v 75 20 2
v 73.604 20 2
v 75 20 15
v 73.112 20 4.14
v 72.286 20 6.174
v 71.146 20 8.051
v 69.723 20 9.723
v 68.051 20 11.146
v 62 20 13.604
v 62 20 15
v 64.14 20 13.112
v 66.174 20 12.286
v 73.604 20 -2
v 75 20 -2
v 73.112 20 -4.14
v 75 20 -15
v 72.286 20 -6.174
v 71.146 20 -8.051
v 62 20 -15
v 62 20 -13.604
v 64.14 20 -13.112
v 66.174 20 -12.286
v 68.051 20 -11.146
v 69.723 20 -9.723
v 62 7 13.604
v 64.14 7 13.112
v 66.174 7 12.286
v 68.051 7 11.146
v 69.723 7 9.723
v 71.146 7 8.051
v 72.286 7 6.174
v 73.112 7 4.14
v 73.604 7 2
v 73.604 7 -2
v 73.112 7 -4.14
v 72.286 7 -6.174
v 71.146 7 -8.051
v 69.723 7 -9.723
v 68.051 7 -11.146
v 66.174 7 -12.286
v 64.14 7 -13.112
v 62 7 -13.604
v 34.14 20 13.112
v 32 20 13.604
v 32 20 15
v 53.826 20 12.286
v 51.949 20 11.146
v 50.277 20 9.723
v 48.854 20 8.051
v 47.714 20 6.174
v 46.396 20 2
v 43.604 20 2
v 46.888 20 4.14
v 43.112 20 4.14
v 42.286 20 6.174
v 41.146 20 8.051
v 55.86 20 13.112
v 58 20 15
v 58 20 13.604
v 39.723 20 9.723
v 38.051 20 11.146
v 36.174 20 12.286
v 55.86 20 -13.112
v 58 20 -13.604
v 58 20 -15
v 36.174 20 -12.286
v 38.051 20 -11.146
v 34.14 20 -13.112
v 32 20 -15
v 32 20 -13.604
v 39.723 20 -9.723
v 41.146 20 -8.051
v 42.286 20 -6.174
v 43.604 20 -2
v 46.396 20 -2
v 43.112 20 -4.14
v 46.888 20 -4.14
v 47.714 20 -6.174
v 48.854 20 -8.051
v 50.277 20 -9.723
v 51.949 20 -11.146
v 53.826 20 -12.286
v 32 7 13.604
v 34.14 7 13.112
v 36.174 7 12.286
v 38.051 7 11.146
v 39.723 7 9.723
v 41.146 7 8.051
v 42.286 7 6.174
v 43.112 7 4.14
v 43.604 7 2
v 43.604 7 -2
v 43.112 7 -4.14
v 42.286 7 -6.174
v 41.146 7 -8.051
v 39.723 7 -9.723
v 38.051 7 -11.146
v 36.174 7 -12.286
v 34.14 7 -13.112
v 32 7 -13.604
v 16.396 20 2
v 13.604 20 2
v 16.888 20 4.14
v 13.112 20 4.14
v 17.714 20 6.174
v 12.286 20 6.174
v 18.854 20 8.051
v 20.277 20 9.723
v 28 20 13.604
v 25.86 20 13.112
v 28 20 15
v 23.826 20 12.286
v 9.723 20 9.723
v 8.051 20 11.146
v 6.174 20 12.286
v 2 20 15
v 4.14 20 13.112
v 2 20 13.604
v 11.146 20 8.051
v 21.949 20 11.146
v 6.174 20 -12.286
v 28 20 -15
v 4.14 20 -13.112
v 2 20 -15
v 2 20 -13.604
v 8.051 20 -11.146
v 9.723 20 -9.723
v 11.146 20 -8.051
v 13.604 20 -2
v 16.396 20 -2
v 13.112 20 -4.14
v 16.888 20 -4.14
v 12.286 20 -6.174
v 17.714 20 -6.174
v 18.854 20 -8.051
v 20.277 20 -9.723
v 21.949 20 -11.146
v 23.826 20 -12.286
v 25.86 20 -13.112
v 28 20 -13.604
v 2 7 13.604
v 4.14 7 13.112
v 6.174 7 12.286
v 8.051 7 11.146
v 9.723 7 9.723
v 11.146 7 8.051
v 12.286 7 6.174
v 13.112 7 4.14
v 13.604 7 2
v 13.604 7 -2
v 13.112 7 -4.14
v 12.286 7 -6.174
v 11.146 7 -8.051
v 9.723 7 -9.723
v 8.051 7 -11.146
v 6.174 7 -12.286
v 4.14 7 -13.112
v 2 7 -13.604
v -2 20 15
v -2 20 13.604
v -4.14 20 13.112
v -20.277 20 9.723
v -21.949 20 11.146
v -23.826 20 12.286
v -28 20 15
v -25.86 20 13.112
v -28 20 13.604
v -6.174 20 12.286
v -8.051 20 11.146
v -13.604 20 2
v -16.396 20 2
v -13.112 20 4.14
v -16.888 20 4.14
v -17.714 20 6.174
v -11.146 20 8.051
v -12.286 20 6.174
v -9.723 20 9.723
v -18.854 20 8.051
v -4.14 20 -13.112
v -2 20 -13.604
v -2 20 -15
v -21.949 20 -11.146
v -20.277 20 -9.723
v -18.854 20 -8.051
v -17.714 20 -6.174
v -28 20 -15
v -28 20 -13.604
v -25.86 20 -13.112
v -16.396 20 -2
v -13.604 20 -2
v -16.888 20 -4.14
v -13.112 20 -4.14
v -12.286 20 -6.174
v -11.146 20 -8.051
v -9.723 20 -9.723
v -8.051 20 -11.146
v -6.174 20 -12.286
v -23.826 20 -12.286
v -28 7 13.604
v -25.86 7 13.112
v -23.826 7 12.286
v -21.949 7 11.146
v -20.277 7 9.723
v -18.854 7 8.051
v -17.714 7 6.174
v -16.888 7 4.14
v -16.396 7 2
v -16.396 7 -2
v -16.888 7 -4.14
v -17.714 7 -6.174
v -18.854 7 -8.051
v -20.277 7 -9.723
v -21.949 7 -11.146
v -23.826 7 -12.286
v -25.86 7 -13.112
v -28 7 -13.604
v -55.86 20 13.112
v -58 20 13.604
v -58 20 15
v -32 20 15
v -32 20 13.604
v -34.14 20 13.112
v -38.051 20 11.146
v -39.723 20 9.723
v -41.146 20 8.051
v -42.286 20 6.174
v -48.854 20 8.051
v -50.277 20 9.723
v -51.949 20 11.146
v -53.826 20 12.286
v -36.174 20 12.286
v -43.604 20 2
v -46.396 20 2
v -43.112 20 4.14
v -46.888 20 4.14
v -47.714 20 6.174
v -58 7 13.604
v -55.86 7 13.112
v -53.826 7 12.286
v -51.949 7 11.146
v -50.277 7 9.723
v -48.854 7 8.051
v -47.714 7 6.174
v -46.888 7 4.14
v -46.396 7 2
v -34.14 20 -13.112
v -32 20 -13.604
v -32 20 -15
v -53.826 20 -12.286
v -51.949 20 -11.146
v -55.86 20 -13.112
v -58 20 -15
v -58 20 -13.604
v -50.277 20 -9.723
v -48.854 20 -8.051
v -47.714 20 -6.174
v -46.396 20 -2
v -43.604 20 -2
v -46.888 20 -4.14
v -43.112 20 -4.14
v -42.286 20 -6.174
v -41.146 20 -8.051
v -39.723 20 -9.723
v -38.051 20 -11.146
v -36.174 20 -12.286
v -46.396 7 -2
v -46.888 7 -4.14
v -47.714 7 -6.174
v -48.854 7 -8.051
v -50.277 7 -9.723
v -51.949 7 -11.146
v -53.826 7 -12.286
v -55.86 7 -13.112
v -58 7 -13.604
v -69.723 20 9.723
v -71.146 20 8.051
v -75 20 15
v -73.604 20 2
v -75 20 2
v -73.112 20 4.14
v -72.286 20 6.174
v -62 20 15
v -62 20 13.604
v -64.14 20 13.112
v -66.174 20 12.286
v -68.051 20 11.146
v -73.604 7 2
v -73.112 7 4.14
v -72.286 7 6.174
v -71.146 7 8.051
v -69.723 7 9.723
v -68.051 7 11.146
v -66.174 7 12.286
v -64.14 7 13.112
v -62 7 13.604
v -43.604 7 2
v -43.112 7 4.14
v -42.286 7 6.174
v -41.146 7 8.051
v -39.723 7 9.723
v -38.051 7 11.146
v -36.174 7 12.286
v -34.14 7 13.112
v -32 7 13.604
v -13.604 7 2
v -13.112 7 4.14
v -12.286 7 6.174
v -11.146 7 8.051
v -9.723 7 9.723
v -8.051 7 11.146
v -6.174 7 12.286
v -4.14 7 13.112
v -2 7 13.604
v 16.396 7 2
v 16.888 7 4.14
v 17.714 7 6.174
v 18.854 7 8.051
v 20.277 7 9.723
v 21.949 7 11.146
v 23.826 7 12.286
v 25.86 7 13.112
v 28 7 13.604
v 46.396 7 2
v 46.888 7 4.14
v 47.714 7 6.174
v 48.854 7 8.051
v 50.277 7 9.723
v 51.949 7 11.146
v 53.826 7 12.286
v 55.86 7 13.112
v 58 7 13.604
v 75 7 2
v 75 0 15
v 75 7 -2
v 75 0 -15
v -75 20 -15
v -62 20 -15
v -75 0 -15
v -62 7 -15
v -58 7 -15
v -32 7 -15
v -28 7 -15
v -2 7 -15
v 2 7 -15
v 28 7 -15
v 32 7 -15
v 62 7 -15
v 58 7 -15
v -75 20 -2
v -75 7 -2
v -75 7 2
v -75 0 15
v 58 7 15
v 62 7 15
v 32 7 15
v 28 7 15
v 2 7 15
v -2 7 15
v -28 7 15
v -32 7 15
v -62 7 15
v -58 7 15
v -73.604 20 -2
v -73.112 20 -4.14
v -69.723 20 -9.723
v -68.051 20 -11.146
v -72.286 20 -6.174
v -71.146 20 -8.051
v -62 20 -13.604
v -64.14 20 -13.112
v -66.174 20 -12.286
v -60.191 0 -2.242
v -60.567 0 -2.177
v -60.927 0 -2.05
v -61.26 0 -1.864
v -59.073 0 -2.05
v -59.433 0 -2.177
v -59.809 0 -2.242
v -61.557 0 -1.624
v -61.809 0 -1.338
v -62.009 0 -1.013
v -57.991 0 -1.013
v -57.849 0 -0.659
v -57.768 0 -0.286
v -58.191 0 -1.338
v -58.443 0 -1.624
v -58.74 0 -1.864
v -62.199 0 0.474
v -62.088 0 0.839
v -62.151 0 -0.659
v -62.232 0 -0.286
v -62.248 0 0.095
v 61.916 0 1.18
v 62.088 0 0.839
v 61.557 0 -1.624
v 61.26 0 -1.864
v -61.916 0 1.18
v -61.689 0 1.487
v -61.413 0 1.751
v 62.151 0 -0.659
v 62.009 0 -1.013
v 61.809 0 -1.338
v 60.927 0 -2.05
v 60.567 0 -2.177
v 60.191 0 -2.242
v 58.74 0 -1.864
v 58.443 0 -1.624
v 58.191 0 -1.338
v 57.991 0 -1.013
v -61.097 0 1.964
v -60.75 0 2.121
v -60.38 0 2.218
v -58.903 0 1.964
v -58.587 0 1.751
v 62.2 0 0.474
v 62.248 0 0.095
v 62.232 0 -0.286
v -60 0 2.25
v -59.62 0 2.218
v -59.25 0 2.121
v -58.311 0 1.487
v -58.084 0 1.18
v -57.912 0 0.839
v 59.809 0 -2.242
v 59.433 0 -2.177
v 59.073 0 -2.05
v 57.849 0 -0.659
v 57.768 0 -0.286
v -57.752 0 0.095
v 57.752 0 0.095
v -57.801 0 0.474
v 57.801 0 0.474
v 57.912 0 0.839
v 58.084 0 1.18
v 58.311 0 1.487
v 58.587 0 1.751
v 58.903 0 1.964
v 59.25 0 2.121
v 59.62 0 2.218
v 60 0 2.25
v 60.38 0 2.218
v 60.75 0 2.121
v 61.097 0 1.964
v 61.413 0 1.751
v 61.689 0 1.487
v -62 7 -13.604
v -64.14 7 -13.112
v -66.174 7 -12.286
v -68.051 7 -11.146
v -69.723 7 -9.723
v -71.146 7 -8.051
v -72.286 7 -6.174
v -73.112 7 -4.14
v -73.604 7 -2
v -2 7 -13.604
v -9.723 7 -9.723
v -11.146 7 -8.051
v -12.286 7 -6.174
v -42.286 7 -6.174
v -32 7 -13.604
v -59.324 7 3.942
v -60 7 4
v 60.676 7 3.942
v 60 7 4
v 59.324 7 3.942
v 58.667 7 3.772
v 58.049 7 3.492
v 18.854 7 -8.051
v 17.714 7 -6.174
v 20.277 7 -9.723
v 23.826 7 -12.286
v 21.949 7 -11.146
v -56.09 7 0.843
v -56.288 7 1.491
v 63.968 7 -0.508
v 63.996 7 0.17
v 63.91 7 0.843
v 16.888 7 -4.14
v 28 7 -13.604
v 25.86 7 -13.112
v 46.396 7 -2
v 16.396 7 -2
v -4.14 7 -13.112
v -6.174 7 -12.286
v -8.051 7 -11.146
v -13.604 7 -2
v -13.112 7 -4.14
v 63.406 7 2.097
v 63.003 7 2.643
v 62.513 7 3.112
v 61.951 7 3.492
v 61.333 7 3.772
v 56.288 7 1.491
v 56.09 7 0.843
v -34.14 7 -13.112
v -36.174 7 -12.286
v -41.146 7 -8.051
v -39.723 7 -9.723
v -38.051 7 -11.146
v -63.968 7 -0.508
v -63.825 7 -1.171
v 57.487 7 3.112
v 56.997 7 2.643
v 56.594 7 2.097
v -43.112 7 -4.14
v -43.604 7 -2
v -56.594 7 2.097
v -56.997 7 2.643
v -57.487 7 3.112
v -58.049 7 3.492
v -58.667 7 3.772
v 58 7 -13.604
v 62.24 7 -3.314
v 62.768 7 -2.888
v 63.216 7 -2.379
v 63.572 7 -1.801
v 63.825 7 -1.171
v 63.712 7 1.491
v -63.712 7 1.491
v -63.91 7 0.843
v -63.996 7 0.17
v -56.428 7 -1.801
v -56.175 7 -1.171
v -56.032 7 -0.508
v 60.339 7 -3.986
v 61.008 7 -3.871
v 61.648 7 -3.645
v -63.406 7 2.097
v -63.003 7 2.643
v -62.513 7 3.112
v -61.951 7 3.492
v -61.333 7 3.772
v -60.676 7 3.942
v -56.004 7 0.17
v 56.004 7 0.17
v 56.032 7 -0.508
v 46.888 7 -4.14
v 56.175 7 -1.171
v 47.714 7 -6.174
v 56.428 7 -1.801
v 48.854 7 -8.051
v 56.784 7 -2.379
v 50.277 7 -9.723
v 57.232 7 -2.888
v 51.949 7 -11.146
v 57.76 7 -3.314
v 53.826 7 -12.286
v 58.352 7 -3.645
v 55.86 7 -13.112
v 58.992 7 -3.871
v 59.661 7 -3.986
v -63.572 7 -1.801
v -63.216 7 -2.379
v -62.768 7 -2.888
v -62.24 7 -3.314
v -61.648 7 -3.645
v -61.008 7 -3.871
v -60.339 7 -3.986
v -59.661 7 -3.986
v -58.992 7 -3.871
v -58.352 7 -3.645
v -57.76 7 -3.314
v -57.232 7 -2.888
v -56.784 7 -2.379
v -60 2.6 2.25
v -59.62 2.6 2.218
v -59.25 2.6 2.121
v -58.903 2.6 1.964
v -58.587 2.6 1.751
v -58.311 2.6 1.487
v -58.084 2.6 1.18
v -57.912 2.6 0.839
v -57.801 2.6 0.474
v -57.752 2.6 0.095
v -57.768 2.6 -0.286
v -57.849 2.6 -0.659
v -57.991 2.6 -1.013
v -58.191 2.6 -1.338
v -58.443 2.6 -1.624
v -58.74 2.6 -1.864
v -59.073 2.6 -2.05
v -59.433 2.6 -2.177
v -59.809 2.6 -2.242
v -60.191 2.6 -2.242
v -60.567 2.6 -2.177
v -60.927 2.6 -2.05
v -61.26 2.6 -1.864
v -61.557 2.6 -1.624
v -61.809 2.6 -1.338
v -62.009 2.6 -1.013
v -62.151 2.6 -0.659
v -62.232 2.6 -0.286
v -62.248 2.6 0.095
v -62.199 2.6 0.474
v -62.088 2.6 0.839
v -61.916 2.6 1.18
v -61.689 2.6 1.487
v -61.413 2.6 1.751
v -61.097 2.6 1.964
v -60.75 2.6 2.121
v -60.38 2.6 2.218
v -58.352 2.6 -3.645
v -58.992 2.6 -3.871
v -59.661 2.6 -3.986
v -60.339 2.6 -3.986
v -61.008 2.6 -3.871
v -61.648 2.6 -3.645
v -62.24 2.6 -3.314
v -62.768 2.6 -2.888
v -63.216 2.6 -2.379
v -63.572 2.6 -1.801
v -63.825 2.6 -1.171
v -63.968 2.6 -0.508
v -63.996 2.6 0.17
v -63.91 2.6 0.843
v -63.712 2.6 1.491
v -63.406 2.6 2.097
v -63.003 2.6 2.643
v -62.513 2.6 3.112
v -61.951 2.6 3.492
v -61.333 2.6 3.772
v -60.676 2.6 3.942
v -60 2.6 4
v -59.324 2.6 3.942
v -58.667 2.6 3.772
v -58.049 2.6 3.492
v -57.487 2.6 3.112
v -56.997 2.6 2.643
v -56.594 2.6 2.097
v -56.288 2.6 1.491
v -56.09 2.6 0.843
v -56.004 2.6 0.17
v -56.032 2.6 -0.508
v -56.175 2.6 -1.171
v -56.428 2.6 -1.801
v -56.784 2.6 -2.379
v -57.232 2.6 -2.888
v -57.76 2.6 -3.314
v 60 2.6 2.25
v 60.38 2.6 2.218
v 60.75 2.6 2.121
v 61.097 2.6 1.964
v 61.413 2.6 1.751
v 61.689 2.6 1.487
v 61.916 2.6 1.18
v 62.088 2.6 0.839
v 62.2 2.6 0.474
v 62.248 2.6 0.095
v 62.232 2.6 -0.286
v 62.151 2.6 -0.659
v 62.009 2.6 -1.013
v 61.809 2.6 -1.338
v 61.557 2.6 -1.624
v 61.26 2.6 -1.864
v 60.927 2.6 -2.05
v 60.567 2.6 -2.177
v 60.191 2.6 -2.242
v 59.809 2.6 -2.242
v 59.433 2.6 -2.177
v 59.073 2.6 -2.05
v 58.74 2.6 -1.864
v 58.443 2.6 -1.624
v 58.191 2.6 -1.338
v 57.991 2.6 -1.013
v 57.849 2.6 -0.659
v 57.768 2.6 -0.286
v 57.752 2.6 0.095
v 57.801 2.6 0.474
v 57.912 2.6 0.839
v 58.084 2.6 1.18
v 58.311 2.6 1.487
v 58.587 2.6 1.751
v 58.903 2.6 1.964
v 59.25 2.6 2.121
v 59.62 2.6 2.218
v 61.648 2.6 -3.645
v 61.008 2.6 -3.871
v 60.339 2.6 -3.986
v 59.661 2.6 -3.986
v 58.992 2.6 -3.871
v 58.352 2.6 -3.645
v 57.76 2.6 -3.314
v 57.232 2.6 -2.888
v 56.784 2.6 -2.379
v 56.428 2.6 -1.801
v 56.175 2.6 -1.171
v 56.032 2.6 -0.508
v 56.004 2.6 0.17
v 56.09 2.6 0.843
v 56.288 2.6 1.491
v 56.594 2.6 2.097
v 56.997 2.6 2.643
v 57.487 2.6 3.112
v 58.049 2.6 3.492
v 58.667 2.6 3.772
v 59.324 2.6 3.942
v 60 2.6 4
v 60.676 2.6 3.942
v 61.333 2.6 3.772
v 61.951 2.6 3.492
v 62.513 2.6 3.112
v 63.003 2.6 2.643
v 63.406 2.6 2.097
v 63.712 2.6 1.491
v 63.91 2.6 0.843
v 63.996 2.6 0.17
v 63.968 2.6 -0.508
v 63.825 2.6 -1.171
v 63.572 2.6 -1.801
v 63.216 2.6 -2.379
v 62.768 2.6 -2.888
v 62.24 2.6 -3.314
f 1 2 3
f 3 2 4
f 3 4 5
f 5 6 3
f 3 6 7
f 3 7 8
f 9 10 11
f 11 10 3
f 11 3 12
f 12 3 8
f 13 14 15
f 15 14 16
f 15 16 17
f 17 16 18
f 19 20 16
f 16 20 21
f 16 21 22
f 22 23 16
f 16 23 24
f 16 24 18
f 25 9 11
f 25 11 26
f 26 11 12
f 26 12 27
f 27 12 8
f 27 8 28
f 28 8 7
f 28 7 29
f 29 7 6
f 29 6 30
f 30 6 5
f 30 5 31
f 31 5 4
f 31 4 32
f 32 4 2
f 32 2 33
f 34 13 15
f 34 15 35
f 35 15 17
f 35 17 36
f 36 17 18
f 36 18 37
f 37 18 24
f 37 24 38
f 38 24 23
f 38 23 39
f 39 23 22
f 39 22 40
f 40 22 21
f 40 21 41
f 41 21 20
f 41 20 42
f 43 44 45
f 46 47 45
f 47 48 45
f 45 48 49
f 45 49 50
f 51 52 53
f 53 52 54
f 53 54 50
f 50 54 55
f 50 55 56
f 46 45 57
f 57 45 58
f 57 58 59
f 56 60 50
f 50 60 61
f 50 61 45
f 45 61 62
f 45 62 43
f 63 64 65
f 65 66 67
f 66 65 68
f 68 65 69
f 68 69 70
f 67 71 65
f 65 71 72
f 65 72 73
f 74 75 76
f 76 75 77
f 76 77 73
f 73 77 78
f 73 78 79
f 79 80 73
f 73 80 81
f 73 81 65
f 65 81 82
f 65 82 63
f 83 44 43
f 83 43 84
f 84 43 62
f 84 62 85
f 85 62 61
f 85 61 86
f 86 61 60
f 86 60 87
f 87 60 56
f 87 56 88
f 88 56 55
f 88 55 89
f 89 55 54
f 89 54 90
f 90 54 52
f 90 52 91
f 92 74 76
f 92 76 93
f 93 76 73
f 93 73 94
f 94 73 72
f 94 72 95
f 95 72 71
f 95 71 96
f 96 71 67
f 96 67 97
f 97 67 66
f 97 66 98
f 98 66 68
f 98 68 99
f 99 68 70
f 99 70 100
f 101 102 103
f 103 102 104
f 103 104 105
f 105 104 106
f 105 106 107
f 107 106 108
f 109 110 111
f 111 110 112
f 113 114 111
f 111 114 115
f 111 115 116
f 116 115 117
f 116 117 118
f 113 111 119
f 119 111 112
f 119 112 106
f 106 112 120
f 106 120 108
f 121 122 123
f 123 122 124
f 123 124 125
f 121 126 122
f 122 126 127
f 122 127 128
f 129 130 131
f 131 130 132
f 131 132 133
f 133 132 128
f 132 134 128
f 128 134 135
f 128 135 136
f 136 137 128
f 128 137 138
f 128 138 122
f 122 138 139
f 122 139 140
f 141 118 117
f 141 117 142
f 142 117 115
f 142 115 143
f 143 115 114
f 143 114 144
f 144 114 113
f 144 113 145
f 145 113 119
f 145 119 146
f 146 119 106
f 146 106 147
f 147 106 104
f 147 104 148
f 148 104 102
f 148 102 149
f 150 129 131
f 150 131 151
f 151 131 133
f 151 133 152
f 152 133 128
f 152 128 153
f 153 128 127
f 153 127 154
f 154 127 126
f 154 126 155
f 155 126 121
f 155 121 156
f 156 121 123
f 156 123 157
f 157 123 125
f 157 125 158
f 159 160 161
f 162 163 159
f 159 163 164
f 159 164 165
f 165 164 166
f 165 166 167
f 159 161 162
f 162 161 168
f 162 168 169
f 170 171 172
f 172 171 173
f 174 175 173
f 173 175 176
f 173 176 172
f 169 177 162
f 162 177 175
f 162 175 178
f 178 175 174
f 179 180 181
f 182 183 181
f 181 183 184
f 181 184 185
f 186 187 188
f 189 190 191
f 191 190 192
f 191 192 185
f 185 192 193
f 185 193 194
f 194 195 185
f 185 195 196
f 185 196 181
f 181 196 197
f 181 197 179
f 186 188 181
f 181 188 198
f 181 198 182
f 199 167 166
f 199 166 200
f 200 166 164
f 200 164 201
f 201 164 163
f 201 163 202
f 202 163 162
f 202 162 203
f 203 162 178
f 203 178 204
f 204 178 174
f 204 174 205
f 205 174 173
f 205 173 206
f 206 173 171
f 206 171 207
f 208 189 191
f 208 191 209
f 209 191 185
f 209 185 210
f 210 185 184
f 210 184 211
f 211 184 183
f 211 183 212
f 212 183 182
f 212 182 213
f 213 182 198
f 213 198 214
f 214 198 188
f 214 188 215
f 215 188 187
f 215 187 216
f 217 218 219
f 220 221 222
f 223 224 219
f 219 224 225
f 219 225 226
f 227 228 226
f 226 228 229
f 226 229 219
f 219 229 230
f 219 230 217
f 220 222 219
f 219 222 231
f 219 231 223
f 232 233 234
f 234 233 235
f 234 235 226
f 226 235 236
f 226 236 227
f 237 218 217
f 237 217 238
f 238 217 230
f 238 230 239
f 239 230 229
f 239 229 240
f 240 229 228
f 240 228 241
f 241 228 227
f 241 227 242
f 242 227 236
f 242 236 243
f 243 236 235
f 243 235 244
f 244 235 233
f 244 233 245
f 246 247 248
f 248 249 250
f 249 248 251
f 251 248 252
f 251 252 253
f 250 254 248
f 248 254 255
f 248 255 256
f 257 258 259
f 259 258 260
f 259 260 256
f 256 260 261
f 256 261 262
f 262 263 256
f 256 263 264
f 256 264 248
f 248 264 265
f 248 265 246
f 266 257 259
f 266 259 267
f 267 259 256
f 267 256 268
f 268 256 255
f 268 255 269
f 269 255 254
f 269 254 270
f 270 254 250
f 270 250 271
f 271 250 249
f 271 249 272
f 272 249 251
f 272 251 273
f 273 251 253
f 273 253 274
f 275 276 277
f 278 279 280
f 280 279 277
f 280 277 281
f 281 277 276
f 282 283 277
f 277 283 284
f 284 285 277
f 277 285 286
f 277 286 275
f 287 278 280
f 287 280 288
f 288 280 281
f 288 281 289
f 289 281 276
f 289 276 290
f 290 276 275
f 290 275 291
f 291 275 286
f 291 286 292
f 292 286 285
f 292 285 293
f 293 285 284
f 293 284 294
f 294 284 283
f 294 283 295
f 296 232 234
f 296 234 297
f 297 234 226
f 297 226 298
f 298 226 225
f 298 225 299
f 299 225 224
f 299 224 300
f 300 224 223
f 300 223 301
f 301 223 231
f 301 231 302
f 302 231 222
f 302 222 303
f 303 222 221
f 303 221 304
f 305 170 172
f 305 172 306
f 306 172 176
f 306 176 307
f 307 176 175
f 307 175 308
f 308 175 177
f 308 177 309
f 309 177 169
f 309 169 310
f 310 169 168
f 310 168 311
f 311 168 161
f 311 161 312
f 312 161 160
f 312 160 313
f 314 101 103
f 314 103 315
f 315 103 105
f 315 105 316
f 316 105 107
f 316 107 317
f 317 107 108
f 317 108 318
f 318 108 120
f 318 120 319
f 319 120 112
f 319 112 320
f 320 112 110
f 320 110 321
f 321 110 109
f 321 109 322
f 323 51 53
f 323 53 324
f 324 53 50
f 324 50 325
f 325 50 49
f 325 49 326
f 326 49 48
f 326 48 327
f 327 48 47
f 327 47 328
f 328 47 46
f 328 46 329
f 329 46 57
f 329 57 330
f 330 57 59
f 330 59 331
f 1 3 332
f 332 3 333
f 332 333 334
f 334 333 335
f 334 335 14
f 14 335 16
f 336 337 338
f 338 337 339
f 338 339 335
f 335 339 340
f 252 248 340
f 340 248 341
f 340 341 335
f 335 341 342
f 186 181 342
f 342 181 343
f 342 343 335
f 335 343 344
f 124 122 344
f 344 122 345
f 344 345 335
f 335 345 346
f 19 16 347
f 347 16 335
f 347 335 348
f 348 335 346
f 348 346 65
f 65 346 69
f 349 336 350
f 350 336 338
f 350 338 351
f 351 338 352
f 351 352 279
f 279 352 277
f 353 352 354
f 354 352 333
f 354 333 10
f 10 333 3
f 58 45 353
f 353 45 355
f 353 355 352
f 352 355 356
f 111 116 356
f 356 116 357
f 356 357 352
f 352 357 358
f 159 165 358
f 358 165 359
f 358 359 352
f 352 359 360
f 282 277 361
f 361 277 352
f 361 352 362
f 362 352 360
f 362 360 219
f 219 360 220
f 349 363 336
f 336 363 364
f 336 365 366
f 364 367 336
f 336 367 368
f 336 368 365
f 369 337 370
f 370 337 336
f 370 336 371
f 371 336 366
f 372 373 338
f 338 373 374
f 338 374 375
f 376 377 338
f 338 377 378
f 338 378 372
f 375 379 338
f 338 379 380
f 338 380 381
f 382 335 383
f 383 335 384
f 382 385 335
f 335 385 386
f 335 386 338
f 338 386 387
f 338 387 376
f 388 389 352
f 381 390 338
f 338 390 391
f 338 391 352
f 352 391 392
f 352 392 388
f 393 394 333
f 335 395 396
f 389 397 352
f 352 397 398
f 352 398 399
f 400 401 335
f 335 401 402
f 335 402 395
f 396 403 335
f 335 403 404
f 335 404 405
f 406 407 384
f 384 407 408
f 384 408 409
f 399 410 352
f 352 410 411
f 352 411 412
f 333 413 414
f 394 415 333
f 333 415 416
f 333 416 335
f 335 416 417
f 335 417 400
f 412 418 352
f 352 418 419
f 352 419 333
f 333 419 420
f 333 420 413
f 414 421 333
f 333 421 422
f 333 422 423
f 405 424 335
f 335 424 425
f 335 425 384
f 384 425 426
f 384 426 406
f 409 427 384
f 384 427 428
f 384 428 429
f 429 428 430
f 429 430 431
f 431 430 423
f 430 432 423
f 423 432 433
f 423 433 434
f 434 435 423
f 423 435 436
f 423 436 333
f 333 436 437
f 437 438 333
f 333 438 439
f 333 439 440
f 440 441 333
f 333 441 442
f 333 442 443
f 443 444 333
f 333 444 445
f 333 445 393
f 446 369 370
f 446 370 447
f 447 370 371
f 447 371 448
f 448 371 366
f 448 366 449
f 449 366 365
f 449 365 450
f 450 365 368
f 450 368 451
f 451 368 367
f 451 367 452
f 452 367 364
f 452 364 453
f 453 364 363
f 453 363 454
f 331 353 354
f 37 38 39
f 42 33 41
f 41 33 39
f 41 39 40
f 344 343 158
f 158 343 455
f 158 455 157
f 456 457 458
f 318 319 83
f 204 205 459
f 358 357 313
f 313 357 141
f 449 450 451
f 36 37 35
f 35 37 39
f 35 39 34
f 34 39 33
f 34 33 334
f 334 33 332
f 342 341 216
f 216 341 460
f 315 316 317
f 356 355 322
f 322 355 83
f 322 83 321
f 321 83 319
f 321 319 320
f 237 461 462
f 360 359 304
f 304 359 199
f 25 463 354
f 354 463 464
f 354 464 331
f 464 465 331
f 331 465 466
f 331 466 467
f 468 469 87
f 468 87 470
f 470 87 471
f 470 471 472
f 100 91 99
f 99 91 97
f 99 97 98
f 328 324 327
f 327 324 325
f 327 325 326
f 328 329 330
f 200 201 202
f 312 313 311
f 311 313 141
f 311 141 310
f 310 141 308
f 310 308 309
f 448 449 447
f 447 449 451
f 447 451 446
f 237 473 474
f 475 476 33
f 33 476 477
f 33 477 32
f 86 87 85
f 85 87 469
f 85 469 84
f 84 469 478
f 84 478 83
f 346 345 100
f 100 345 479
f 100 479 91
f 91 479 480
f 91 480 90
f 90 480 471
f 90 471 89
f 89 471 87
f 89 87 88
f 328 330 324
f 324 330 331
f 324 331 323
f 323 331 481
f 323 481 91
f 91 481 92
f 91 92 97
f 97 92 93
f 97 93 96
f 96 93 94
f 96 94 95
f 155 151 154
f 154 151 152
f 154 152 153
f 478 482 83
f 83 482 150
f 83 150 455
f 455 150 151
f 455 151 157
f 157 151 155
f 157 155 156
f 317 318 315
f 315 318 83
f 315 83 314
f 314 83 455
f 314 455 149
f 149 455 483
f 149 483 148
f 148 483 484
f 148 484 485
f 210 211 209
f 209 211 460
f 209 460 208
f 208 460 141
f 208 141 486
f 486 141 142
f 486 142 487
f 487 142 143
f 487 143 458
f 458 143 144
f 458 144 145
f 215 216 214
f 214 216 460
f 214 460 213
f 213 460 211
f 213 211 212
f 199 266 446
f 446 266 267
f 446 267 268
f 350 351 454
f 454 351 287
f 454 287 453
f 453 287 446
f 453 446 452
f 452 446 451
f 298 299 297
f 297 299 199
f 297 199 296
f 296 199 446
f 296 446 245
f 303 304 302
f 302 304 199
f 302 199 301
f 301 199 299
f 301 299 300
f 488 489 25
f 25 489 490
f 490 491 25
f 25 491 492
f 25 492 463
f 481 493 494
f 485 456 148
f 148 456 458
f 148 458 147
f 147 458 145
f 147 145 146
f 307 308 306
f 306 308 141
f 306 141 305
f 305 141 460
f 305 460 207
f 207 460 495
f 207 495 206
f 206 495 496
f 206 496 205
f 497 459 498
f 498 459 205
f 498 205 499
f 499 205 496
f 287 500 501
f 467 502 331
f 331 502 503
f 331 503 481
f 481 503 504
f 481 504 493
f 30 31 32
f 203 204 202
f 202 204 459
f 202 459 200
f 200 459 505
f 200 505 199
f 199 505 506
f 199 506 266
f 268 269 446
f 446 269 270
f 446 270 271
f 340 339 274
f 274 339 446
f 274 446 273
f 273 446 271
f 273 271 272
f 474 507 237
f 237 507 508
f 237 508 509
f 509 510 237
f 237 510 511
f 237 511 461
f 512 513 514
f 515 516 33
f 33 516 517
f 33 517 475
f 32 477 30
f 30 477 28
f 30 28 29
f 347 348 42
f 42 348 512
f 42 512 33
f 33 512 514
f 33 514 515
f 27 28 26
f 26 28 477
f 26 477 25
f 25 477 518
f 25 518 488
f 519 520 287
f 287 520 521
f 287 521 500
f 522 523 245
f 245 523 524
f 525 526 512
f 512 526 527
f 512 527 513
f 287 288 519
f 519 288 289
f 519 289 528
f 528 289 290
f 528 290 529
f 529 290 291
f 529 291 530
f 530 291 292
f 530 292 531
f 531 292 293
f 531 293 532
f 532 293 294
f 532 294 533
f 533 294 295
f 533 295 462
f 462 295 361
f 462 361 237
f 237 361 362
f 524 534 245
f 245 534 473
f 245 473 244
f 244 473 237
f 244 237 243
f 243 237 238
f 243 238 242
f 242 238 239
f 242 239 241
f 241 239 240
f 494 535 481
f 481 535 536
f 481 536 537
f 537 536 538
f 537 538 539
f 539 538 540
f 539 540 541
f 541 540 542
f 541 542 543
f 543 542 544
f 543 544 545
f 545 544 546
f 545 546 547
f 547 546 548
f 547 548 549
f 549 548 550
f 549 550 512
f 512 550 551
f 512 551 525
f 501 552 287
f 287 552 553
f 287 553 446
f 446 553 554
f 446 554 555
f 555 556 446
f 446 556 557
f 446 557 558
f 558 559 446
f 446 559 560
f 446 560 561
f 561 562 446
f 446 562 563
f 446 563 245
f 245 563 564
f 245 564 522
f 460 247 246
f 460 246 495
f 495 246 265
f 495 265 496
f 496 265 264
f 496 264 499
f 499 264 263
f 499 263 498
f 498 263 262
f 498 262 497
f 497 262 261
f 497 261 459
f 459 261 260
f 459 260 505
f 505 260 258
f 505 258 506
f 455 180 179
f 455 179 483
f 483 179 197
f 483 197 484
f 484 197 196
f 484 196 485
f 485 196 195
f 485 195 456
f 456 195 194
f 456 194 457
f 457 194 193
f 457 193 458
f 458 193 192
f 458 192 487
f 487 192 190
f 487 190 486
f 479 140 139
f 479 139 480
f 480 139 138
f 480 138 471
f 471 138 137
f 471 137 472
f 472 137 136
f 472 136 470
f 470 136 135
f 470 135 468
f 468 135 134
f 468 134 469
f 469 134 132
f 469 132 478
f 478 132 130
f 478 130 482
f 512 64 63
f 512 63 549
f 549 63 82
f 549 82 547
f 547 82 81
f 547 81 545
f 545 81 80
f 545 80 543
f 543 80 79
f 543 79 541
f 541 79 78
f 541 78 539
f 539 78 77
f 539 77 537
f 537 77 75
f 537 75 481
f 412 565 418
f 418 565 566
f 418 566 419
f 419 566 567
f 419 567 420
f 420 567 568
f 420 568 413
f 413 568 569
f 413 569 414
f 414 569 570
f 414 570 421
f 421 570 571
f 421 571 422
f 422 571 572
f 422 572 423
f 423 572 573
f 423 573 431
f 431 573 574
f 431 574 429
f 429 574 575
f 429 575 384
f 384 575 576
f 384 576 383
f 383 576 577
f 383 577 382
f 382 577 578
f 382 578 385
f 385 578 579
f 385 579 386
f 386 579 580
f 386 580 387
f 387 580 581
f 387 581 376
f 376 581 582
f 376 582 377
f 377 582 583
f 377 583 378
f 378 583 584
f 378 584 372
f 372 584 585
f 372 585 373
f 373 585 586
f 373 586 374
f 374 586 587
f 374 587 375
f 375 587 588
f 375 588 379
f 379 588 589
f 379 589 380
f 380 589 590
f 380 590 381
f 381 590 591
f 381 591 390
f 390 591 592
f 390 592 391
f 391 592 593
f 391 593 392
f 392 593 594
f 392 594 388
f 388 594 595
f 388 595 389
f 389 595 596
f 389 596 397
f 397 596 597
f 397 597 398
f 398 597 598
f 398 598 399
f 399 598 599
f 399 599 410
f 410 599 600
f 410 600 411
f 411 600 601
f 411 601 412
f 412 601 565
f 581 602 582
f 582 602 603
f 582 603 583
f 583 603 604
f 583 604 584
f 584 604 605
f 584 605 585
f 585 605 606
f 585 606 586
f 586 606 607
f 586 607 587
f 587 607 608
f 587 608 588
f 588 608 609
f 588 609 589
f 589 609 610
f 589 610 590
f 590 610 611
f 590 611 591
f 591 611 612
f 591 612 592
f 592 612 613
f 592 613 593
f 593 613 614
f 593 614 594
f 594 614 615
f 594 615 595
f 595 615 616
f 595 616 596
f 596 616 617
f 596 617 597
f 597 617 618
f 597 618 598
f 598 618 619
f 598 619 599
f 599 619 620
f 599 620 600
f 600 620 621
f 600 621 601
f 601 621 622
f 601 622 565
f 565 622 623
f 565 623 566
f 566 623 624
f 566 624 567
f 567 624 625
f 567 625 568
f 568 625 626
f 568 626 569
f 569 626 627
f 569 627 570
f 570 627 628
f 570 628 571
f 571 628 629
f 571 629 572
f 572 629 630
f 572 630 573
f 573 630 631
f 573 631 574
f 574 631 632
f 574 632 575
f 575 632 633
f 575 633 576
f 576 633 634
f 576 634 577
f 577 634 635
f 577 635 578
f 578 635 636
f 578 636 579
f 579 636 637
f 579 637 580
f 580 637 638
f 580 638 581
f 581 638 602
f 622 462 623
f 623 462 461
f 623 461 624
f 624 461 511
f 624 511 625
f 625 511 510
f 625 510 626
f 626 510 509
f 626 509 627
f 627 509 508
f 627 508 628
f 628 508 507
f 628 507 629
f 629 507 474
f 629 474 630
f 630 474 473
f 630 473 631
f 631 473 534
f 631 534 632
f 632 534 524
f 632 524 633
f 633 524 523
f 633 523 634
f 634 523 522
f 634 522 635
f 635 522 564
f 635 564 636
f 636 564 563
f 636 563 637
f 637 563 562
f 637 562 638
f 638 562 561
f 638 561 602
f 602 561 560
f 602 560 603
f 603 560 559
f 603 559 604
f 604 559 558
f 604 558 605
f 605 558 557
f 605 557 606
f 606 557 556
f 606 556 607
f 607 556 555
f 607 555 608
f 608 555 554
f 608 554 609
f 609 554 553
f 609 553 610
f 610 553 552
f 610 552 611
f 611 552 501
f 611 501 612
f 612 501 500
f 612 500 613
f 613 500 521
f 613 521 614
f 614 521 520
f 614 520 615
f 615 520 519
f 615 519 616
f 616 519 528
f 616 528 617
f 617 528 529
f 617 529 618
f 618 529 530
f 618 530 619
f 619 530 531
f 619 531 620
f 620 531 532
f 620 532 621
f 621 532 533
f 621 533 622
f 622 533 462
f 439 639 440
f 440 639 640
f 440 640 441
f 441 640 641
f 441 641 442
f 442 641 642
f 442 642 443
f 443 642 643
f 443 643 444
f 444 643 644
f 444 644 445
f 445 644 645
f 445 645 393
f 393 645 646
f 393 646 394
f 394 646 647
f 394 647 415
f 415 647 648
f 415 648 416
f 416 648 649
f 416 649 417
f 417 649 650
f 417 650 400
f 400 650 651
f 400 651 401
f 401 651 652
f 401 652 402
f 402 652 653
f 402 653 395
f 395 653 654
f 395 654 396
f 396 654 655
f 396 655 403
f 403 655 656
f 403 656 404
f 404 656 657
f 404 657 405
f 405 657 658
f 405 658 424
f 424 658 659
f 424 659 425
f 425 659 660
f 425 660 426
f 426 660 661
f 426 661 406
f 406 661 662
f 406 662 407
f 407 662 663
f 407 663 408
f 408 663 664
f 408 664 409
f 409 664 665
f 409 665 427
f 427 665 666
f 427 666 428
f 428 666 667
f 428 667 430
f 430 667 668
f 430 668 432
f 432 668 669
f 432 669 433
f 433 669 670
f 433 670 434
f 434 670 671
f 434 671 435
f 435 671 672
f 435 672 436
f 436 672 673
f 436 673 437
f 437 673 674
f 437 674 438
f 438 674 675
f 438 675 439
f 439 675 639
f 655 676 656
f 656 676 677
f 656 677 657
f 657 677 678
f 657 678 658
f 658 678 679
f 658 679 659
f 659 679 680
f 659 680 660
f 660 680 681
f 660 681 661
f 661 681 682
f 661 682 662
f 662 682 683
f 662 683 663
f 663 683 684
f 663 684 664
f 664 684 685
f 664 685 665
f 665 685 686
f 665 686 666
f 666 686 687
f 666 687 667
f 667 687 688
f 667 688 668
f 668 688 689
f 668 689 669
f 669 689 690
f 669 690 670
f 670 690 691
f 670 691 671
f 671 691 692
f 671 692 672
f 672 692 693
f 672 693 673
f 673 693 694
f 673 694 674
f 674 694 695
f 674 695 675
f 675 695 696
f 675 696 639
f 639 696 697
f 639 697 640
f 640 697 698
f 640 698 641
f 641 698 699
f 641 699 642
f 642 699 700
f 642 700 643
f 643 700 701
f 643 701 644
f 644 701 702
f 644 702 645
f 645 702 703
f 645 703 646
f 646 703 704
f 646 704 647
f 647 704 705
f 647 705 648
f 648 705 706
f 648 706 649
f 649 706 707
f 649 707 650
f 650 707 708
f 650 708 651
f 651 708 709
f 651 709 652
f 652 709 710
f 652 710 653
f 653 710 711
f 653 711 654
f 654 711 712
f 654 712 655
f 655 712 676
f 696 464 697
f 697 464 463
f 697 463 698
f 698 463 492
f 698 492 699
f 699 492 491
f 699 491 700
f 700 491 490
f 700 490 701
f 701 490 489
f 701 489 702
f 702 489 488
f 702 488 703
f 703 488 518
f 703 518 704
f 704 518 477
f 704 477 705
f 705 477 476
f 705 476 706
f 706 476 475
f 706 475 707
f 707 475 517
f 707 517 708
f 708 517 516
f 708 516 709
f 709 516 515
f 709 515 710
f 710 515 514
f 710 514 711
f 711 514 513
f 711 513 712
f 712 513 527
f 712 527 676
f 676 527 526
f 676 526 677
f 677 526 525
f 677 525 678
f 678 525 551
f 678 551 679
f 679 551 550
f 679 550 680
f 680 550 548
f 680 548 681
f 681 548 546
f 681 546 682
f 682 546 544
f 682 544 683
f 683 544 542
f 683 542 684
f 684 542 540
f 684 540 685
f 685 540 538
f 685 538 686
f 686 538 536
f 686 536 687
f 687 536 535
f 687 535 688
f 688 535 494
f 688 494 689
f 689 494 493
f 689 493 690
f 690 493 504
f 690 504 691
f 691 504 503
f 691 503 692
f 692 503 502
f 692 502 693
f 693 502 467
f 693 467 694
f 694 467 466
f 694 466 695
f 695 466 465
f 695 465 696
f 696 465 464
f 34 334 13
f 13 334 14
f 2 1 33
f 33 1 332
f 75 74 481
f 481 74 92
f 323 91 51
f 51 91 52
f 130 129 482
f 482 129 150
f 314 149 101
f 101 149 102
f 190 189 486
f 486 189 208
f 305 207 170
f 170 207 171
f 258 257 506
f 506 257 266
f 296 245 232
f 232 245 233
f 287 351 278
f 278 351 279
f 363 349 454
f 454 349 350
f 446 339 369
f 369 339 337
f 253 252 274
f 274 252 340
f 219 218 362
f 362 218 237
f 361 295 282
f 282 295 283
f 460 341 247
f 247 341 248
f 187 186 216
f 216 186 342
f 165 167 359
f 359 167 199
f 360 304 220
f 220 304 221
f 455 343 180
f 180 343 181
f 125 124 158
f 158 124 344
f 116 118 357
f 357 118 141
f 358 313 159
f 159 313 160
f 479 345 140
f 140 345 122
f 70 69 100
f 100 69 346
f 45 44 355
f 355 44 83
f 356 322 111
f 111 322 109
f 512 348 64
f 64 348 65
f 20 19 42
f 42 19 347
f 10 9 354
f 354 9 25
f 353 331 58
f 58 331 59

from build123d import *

# Parameters (mm, degrees)
SKETCH2_W                                           = 150
SKETCH2_H                                           = 30
BOSS_EXTRUDE1_DEPTH                                 = 20
SKETCH3_R                                           = 13.75
CUT_EXTRUDE1_DEPTH                                  = 13
LPATTERN1_COUNT                                     = 5
LPATTERN1_PITCH                                     = 30
CBORE_FOR_M4_HEX_SOCKET_HEAD_CAP_SCREW1_D           = 4.5
CBORE_FOR_M4_HEX_SOCKET_HEAD_CAP_SCREW1_CBORE_D     = 8
CBORE_FOR_M4_HEX_SOCKET_HEAD_CAP_SCREW1_CBORE_DEPTH = 4.4
LPATTERN2_COUNT                                     = 2
LPATTERN2_PITCH                                     = 120
SKETCH7_W                                           = 181.12901383
SKETCH7_H                                           = 4
CUT_EXTRUDE3_DEPTH                                  = 13
SKETCH8_W                                           = 4
SKETCH8_H                                           = 50
CUT_EXTRUDE4_DEPTH                                  = 13
LPATTERN3_COUNT                                     = 5
LPATTERN3_PITCH                                     = 30


with BuildPart() as part:
    # Sketch2 → Boss-Extrude1 (new body)
    with BuildSketch(Plane(origin=(0, 0, 0), x_dir=(1, 0, 0), z_dir=(0, 1, 0))):
        Rectangle(SKETCH2_W, SKETCH2_H)
    extrude(amount=BOSS_EXTRUDE1_DEPTH)

    # Sketch3 → Cut-Extrude1 (cut)
    with BuildSketch(Plane(origin=(0, 20, 0), x_dir=(1, 0, 0), z_dir=(0, 1, 0))):
        with Locations(Location((-60, 0, 0), (0, 0, 270))):
            Circle(SKETCH3_R)
    cut_extrude1 = extrude(amount=-CUT_EXTRUDE1_DEPTH, mode=Mode.SUBTRACT)

    # LPattern1: Cut-Extrude1 ×5
    with Locations(*[(i * LPATTERN1_PITCH, 0, 0) for i in range(1, LPATTERN1_COUNT)]):
        add(cut_extrude1, mode=Mode.SUBTRACT)

    # CBORE for M4 Hex Socket Head Cap Screw1 (through all)
    with Locations(Plane(origin=(0, 7, 0), x_dir=(-1, 0, 0), z_dir=(0, 1, 0))):
        with Locations((60, 0)):
            cbore_for_m4_hex_socket_head_cap_screw1 = CounterBoreHole(CBORE_FOR_M4_HEX_SOCKET_HEAD_CAP_SCREW1_D / 2, CBORE_FOR_M4_HEX_SOCKET_HEAD_CAP_SCREW1_CBORE_D / 2, CBORE_FOR_M4_HEX_SOCKET_HEAD_CAP_SCREW1_CBORE_DEPTH)

    # LPattern2: CBORE for M4 Hex Socket Head Cap Screw1 ×2
    with Locations(*[(i * LPATTERN2_PITCH, 0, 0) for i in range(1, LPATTERN2_COUNT)]):
        add(cbore_for_m4_hex_socket_head_cap_screw1, mode=Mode.SUBTRACT)

    # Sketch7 → Cut-Extrude3 (cut)
    with BuildSketch(Plane(origin=(0, 20, 0), x_dir=(1, 0, 0), z_dir=(0, 1, 0))):
        Rectangle(SKETCH7_W, SKETCH7_H)
    extrude(amount=-CUT_EXTRUDE3_DEPTH, mode=Mode.SUBTRACT)

    # Sketch8 → Cut-Extrude4 (cut)
    with BuildSketch(Plane(origin=(0, 20, 0), x_dir=(-1, 0, 0), z_dir=(0, 1, 0))):
        with Locations((60, -1.298701607)):
            Rectangle(SKETCH8_W, SKETCH8_H)
    cut_extrude4 = extrude(amount=-CUT_EXTRUDE4_DEPTH, mode=Mode.SUBTRACT)

    # LPattern3: Cut-Extrude4 ×5
    with Locations(*[(i * LPATTERN3_PITCH, 0, 0) for i in range(1, LPATTERN3_COUNT)]):
        add(cut_extrude4, mode=Mode.SUBTRACT)


solid = part.part
